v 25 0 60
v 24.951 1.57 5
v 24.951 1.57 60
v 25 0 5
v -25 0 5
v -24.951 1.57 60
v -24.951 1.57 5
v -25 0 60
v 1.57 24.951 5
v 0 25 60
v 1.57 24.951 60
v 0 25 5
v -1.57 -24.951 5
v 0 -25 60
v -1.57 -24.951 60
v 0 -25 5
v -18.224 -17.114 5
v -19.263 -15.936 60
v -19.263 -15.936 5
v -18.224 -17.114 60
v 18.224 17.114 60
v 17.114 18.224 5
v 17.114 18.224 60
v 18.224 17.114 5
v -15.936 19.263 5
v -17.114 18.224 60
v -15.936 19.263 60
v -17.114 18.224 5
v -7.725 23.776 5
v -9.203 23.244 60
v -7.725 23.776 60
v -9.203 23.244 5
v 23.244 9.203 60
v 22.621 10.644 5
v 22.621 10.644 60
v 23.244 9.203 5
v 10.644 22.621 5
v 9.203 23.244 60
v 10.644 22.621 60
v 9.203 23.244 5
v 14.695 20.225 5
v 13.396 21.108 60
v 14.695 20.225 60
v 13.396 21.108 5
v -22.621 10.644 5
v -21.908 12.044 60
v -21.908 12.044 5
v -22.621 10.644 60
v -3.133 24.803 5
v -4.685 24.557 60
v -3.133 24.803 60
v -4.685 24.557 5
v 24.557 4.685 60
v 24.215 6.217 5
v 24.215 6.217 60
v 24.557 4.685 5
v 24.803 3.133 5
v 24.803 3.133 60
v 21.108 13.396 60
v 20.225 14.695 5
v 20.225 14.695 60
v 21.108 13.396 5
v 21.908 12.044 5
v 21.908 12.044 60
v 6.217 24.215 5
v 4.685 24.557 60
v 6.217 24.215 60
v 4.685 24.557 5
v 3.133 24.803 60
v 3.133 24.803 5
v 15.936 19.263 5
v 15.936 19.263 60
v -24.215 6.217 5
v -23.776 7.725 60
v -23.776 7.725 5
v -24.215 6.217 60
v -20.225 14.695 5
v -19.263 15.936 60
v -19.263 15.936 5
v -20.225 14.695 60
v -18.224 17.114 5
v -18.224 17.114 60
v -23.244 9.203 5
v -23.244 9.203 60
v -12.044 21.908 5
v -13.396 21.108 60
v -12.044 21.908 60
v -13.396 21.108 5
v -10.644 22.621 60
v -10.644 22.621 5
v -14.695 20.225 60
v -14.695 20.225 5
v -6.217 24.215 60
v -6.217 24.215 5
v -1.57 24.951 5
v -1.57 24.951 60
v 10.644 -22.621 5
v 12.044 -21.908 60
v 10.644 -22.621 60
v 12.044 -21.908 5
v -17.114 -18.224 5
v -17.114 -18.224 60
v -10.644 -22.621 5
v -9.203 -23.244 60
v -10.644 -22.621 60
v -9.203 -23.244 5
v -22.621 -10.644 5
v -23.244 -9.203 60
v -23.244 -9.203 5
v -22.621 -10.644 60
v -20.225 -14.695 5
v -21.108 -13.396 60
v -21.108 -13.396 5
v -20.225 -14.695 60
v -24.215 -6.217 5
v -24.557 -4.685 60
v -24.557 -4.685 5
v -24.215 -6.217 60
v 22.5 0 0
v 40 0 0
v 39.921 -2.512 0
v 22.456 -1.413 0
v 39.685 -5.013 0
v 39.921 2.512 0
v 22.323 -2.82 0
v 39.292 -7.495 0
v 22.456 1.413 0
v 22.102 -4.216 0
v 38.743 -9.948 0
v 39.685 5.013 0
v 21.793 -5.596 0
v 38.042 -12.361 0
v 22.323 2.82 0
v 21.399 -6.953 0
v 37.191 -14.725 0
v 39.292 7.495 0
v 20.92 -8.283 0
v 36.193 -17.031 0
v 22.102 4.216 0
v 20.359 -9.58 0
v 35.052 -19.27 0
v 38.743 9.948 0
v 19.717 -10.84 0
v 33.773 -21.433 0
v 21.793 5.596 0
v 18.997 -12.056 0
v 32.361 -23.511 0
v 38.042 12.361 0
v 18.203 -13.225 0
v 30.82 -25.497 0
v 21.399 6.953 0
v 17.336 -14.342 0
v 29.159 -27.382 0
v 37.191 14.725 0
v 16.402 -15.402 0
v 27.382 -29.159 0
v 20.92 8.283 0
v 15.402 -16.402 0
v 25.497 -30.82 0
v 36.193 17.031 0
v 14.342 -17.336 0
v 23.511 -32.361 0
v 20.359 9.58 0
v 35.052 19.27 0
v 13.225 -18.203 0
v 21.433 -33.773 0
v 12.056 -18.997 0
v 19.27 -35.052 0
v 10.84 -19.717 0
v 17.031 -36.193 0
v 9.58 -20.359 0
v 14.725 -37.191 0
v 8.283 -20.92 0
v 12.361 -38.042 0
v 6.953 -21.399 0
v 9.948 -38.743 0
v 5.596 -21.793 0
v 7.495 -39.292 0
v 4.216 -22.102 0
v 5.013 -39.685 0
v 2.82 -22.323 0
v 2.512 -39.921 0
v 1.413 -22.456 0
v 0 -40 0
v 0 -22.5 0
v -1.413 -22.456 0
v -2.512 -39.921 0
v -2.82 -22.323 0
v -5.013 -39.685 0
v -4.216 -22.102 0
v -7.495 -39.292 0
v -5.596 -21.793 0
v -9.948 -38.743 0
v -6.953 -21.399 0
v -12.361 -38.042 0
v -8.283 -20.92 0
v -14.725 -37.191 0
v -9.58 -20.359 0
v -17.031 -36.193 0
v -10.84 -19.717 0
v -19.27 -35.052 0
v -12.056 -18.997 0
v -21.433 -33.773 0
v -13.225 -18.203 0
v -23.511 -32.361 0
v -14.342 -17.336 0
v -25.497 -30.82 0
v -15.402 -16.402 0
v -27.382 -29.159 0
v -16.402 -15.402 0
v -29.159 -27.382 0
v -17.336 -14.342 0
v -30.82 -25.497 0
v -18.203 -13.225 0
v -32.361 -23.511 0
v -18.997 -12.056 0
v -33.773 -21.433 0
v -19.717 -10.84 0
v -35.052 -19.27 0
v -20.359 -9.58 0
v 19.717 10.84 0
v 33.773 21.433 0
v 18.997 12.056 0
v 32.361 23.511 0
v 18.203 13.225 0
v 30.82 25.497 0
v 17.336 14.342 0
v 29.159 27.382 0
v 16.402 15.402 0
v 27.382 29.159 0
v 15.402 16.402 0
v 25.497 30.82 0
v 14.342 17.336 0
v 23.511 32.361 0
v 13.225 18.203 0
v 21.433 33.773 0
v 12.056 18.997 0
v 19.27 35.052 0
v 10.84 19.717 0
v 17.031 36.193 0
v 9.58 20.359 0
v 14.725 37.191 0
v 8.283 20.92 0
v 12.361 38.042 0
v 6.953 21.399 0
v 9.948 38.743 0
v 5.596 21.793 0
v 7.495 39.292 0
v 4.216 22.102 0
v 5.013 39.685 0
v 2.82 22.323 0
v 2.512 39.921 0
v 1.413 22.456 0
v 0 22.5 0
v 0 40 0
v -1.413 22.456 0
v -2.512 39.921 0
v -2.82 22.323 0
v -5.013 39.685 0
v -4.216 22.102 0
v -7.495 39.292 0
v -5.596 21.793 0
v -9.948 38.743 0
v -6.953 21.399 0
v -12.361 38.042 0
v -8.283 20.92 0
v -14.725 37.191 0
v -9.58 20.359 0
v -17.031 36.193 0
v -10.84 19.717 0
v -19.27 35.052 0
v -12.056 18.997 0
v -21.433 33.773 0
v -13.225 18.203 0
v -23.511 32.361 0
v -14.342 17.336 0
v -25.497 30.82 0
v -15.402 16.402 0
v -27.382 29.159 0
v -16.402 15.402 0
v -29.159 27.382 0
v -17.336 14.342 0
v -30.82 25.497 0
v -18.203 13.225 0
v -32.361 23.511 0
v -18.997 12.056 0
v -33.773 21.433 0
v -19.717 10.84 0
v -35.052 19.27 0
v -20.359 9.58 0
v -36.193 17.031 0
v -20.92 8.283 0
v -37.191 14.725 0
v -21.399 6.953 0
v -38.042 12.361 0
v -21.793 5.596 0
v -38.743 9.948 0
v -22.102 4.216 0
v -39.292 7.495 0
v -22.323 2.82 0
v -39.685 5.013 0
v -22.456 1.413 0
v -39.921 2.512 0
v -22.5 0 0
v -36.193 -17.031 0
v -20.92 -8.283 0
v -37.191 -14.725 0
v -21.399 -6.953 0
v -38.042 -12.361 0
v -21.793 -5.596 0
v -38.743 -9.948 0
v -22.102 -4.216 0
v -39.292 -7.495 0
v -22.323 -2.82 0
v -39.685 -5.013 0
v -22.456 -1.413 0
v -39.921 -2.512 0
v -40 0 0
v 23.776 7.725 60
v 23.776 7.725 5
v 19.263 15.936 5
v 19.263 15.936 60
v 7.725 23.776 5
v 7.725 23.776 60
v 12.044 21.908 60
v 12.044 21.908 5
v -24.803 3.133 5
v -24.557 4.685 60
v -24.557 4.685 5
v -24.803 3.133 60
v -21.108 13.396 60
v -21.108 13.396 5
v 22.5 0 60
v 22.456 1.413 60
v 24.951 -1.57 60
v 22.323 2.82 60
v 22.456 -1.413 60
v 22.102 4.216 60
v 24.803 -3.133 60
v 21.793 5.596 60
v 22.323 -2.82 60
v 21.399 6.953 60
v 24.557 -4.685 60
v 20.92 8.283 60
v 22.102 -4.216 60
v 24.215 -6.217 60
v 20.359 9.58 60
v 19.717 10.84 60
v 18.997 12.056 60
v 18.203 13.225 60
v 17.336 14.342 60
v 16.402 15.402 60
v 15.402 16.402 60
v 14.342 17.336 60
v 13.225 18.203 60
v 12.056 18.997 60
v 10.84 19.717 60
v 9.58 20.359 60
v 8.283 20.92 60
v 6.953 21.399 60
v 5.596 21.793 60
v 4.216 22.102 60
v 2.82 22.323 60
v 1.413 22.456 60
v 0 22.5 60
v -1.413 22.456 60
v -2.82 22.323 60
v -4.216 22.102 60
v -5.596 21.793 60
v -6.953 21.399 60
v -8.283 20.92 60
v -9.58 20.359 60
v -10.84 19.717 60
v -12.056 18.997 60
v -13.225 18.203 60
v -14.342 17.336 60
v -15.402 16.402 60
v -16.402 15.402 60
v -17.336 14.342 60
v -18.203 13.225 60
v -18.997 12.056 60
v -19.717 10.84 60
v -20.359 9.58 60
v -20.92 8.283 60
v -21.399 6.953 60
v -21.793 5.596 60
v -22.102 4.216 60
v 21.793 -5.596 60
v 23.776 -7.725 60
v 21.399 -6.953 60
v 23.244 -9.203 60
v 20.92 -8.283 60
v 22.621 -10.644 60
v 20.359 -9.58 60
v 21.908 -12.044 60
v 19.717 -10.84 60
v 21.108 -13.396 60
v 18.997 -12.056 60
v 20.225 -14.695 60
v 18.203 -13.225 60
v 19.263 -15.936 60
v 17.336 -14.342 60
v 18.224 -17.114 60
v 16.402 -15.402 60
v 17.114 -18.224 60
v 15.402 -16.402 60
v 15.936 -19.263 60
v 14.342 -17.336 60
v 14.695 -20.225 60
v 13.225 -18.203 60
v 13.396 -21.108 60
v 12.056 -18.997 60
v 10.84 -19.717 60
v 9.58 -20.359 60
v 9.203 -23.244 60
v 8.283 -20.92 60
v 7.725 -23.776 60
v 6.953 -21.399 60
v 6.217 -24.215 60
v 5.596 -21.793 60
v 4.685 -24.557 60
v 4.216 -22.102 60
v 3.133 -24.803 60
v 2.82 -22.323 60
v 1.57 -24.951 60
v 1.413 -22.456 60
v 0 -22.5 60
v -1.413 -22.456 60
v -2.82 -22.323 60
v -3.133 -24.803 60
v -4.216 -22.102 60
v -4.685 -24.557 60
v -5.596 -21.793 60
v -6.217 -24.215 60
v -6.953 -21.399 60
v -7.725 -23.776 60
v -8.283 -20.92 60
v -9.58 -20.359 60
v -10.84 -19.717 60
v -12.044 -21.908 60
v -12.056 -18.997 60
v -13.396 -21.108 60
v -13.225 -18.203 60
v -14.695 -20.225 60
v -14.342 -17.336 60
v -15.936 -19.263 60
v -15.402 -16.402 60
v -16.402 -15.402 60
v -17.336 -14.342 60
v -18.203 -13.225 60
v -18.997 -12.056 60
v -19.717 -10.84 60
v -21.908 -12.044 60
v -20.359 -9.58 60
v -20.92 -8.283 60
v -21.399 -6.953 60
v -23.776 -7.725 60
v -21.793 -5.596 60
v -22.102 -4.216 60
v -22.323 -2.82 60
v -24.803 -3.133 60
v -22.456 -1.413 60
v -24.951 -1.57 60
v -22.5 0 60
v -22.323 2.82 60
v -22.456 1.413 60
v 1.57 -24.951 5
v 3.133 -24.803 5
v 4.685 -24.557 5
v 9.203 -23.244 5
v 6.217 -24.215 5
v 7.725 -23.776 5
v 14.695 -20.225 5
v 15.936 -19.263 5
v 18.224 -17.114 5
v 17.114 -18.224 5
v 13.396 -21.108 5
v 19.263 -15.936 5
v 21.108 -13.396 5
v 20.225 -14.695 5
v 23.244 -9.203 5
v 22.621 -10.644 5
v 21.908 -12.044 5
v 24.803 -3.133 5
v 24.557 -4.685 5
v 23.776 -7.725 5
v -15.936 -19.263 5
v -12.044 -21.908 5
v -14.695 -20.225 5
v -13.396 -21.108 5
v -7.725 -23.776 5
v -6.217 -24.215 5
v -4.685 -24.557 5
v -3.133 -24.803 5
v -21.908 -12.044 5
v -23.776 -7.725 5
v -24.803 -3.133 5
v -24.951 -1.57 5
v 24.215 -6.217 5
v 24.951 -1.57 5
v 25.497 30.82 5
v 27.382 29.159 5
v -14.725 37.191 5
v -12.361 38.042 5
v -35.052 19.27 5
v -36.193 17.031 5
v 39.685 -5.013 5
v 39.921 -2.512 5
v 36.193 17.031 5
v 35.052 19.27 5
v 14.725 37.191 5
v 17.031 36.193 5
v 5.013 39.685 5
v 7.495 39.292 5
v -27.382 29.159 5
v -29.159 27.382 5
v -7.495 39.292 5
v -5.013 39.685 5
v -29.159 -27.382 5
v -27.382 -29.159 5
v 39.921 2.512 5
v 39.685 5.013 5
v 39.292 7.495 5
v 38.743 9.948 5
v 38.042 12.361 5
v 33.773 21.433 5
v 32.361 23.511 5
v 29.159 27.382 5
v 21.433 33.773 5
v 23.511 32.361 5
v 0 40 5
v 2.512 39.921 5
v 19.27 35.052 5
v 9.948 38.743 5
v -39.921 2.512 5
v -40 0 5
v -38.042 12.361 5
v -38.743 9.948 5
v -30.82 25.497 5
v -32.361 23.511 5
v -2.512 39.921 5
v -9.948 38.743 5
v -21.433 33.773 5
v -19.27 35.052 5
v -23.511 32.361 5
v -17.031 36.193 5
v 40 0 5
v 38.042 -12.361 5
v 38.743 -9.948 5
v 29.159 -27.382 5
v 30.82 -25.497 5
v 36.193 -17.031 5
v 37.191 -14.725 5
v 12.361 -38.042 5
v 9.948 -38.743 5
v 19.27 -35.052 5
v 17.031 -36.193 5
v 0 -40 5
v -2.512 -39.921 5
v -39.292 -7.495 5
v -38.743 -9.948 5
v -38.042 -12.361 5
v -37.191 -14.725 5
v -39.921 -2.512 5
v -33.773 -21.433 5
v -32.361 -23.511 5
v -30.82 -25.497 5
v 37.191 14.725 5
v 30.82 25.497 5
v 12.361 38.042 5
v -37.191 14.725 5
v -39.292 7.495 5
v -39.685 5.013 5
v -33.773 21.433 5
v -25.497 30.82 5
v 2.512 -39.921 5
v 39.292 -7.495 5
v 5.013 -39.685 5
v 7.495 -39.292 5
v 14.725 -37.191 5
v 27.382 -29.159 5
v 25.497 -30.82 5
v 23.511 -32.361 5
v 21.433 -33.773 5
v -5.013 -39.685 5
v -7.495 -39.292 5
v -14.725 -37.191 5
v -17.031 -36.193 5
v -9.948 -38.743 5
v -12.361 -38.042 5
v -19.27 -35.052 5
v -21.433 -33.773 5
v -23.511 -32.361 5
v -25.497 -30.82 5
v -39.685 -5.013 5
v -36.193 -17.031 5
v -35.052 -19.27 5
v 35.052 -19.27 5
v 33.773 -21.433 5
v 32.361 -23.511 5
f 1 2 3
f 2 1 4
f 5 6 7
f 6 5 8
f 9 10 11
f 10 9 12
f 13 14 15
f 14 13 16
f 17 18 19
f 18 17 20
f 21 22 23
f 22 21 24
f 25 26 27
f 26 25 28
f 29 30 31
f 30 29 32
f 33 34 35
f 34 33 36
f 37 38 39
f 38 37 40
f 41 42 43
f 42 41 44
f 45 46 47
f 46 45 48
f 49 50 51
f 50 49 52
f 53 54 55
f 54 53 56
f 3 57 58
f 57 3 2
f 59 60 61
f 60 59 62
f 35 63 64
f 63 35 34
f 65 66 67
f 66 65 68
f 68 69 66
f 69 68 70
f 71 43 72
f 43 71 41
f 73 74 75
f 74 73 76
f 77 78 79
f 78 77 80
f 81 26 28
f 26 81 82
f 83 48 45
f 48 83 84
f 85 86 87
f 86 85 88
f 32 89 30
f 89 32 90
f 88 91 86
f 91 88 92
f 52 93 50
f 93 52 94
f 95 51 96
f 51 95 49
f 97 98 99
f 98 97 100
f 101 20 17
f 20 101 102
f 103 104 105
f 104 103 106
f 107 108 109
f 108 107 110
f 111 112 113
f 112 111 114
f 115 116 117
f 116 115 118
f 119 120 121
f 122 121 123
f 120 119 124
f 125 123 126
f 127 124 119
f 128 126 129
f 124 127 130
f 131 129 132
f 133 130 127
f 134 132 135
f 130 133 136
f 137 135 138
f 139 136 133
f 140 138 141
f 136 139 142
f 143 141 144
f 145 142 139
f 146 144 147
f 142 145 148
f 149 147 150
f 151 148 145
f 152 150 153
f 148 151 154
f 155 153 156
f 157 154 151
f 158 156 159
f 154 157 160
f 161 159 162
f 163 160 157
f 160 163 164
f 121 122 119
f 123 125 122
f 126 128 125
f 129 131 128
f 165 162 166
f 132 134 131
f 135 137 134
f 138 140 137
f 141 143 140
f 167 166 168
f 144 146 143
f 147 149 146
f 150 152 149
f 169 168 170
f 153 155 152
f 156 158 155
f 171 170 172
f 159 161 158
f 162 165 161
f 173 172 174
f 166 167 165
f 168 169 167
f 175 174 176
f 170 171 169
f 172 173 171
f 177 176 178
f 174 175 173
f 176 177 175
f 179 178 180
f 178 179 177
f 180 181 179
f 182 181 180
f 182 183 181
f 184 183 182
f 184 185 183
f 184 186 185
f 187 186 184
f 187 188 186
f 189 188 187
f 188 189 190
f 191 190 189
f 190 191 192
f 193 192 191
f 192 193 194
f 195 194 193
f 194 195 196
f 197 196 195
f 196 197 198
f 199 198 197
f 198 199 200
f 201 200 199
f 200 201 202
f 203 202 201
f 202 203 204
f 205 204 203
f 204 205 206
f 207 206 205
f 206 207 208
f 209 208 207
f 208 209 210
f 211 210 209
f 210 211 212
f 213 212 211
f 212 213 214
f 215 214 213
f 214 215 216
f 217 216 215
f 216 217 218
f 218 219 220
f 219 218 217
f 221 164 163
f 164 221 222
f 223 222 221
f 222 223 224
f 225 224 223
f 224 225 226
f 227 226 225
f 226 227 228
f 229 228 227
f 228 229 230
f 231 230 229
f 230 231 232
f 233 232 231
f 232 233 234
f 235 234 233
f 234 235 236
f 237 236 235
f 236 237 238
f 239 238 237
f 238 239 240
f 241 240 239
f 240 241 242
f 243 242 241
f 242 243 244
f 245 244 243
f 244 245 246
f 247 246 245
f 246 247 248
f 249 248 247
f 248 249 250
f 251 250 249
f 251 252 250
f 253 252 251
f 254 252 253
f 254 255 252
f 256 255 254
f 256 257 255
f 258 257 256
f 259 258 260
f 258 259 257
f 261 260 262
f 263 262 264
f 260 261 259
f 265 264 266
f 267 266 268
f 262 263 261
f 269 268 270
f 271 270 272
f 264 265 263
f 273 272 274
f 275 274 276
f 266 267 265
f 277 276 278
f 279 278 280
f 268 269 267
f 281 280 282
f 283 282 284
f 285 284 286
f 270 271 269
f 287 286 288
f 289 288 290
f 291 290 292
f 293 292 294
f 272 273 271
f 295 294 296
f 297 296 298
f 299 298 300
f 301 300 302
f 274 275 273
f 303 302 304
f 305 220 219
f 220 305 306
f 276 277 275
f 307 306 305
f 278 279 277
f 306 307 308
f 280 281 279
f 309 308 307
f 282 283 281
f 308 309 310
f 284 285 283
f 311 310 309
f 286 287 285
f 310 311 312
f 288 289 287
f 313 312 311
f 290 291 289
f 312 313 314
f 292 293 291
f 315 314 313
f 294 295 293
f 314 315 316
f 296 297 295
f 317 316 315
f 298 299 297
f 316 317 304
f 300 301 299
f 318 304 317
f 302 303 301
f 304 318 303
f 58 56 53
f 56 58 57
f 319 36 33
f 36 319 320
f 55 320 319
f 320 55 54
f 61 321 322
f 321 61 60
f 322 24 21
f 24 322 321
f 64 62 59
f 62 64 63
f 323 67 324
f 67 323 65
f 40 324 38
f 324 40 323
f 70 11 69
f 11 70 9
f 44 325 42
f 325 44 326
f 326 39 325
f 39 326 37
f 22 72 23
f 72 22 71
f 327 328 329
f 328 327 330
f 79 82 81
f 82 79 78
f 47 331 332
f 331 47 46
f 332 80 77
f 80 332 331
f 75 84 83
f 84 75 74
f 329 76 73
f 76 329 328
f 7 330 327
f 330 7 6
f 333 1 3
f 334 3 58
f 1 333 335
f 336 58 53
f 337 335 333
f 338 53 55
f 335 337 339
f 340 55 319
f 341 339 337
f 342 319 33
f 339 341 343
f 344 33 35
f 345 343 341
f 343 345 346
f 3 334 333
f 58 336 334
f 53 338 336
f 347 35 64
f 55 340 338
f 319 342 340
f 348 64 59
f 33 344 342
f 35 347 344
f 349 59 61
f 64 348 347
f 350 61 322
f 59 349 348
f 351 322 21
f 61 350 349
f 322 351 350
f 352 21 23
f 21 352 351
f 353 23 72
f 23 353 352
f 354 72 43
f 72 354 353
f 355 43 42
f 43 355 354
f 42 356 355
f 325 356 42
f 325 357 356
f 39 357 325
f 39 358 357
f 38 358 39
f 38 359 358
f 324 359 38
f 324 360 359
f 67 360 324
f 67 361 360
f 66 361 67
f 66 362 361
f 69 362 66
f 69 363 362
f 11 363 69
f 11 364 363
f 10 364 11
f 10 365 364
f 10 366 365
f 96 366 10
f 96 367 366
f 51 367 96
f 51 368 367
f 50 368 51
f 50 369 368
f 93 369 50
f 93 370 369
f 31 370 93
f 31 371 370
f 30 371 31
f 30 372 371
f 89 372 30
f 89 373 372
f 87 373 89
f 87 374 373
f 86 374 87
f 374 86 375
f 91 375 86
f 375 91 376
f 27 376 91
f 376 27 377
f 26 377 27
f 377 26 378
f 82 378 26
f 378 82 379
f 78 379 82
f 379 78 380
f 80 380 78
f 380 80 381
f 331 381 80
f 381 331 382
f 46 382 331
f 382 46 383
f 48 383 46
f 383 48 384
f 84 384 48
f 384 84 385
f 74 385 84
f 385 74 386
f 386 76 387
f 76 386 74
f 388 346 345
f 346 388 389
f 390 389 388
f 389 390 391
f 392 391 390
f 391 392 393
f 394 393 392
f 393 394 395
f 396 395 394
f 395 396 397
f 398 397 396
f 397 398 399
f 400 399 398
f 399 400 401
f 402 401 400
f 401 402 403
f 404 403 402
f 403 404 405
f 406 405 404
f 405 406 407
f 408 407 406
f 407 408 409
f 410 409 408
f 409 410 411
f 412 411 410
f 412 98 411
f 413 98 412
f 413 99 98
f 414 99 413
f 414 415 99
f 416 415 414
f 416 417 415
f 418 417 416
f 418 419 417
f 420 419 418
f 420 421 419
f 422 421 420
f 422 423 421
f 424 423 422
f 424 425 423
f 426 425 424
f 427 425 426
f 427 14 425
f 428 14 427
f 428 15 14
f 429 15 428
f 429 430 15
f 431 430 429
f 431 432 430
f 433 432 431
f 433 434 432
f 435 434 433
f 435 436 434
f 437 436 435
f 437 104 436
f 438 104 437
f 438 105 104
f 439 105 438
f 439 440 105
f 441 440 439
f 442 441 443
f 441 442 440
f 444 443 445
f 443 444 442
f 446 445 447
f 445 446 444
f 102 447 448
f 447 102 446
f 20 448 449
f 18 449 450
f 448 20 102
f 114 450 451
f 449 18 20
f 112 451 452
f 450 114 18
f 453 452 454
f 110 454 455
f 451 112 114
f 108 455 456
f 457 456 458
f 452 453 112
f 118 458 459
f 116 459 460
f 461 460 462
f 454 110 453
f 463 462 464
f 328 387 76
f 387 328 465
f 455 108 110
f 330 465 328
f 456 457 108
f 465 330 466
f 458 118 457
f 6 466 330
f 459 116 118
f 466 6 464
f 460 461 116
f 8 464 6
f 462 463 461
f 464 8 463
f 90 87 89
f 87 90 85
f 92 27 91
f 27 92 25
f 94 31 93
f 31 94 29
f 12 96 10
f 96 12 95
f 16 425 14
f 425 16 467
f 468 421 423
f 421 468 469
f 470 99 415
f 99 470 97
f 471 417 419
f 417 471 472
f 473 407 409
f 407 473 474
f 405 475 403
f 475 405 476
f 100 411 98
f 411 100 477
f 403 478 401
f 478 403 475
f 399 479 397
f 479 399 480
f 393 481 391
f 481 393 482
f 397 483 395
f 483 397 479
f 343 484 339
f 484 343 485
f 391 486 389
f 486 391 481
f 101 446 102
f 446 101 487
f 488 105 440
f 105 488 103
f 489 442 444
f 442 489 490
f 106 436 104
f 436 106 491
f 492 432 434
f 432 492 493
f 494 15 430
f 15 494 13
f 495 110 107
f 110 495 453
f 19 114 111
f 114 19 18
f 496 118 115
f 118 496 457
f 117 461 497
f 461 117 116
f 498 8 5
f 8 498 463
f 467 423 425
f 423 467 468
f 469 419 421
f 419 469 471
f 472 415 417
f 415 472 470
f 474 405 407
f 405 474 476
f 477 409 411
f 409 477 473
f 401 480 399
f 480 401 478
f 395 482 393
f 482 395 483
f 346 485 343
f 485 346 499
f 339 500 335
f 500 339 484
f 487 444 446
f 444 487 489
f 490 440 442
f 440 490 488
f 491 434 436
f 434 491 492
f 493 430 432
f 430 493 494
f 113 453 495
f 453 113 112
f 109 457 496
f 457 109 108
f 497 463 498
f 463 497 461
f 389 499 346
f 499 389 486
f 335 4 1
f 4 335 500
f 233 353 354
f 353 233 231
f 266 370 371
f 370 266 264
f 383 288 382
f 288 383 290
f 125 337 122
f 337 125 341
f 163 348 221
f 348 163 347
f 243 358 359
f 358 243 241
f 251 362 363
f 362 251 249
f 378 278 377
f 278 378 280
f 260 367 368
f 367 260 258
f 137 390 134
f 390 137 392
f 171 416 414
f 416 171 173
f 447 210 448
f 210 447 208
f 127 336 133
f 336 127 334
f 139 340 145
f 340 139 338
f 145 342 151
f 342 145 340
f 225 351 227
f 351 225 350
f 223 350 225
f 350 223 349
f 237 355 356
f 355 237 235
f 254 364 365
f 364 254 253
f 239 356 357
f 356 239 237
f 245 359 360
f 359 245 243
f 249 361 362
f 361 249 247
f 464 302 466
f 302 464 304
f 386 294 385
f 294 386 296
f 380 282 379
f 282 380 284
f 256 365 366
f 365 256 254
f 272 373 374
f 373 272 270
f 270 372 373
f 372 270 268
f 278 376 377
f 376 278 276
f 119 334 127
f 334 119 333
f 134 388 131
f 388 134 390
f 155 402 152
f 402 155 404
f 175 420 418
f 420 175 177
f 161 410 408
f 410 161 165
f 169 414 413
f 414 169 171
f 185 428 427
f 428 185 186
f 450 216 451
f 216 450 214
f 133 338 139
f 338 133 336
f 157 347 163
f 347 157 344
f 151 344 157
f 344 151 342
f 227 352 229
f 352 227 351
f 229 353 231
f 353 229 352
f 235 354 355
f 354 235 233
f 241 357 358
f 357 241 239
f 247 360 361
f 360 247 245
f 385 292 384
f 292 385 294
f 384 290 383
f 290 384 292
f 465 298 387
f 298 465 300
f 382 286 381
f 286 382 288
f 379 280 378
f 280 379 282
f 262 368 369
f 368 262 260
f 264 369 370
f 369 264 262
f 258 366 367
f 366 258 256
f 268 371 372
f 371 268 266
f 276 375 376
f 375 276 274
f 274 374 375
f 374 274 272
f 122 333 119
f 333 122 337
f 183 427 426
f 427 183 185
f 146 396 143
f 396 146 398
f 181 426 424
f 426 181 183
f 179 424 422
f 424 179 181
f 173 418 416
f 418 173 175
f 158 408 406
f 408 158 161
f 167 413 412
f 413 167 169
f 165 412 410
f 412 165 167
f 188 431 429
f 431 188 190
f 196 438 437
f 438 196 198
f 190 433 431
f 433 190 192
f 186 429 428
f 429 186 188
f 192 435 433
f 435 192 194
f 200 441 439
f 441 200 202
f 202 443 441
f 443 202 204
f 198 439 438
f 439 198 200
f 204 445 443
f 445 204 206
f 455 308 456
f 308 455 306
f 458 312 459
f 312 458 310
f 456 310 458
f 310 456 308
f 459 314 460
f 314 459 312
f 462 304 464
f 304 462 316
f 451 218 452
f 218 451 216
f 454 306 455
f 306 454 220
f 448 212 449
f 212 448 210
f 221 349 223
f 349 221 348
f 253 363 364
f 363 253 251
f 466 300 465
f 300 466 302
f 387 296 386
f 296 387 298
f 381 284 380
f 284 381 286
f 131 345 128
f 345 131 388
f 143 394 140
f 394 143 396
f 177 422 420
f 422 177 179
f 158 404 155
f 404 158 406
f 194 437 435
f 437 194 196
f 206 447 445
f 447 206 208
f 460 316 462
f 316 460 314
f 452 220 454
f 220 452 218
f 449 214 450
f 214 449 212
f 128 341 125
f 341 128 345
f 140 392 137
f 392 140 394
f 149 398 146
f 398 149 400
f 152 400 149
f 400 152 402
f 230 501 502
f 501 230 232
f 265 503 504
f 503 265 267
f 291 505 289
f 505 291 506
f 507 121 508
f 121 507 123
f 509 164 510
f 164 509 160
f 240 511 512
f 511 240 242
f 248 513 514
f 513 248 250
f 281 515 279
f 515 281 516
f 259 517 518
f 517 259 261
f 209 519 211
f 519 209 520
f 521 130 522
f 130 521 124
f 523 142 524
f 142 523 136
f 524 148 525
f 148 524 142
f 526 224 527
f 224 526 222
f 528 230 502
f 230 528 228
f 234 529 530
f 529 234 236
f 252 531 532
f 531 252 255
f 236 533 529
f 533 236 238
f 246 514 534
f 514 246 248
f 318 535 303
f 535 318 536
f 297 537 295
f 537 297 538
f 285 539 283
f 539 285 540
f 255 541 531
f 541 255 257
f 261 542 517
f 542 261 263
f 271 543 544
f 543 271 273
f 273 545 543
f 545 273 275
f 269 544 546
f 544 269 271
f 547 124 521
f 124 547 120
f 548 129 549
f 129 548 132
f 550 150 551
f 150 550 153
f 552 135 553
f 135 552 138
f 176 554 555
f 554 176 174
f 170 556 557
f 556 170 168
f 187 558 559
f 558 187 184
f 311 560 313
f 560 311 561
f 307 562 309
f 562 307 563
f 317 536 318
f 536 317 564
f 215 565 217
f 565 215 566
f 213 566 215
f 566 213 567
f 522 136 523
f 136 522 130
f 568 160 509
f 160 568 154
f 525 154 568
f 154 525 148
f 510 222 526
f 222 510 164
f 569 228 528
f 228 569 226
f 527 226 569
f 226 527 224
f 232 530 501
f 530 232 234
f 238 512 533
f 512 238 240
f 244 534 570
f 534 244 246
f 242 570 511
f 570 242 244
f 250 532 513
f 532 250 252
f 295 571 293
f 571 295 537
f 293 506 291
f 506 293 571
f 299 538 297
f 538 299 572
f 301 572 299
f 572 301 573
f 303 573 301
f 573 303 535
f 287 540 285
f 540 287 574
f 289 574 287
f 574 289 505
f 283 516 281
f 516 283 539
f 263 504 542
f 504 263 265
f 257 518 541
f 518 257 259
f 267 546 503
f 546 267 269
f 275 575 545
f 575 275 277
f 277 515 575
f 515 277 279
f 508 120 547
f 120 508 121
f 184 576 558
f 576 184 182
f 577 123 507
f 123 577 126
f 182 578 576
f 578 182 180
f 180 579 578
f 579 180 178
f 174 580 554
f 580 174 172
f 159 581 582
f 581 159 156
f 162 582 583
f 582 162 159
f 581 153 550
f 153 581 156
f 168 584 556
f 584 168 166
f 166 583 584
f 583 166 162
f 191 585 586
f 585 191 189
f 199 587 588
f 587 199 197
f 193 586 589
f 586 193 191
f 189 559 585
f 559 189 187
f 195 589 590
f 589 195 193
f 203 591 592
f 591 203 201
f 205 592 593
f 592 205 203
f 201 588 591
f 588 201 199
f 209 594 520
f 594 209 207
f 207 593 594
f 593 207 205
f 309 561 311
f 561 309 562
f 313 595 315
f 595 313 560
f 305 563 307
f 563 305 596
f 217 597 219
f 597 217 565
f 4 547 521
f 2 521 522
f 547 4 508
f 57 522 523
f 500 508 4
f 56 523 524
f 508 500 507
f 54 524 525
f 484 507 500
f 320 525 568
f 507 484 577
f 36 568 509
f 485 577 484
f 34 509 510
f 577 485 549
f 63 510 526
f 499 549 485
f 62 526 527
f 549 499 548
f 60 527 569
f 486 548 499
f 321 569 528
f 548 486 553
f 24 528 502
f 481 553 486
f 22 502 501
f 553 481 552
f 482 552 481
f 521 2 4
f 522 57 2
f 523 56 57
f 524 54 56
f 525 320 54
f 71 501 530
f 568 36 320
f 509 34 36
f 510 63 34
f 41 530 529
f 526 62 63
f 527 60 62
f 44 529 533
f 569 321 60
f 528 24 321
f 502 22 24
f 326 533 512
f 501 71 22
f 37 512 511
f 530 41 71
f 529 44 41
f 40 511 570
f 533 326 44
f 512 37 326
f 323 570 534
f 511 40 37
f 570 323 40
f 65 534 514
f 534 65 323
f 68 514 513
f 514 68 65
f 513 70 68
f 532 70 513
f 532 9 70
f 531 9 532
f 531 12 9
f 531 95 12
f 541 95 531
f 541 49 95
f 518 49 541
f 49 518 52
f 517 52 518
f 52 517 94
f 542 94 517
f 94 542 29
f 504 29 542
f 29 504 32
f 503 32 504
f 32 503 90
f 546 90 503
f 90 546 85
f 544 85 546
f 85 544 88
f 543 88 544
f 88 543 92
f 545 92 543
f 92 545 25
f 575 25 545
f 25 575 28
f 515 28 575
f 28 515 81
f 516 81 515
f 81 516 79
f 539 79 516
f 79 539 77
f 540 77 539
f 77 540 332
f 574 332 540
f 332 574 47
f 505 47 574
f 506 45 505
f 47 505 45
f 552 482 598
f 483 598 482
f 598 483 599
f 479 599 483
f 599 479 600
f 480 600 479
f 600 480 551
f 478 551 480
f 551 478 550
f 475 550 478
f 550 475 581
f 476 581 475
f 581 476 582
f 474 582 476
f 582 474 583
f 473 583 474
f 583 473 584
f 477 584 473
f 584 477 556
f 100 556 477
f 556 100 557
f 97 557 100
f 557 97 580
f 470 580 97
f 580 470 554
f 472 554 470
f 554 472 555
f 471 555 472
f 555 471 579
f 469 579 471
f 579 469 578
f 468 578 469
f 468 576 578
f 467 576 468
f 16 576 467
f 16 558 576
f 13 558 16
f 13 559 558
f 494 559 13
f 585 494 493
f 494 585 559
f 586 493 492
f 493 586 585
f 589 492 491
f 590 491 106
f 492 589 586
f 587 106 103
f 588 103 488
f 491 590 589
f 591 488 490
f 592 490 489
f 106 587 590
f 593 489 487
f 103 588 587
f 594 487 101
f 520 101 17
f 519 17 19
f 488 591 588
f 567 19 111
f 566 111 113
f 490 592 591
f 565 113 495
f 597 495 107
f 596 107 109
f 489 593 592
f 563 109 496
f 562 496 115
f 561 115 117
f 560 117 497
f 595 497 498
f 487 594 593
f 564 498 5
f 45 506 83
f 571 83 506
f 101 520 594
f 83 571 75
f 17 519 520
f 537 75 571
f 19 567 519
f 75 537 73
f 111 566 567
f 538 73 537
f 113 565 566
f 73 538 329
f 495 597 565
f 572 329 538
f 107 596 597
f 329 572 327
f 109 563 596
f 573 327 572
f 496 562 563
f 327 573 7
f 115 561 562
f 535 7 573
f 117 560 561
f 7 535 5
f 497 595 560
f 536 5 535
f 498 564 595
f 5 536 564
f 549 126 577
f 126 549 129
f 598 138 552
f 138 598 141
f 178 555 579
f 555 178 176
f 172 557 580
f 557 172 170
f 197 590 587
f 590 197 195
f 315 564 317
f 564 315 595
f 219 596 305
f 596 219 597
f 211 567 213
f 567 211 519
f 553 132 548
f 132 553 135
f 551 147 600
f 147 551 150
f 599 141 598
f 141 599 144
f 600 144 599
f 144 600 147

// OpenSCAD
// Andre Betz
// github@AndreBetz.de

RohrKN50Aussen          = 50;
RohrKN50Innen           = 45;
RohrKN50Laenge          = 60;
HalterungsRingD         = 15;
HalterungsRingH         =  5;

$fn=100;

WandDicke = (RohrKN50Aussen - RohrKN50Innen)/2;

module InnenRohr(
    WandDicke,
    RohrDN75DInnen,
    RohrDN75TStueckLange)
{
    difference()
    {
        cylinder(r=RohrDN75DInnen/2,RohrDN75TStueckLange);
        translate([0,0,-1])
            cylinder(r=RohrDN75DInnen/2-WandDicke,RohrDN75TStueckLange+2);
    }
}

InnenRohr(WandDicke,RohrKN50Aussen,RohrKN50Laenge);
InnenRohr(HalterungsRingD,RohrKN50Aussen+HalterungsRingD*2,HalterungsRingH);
